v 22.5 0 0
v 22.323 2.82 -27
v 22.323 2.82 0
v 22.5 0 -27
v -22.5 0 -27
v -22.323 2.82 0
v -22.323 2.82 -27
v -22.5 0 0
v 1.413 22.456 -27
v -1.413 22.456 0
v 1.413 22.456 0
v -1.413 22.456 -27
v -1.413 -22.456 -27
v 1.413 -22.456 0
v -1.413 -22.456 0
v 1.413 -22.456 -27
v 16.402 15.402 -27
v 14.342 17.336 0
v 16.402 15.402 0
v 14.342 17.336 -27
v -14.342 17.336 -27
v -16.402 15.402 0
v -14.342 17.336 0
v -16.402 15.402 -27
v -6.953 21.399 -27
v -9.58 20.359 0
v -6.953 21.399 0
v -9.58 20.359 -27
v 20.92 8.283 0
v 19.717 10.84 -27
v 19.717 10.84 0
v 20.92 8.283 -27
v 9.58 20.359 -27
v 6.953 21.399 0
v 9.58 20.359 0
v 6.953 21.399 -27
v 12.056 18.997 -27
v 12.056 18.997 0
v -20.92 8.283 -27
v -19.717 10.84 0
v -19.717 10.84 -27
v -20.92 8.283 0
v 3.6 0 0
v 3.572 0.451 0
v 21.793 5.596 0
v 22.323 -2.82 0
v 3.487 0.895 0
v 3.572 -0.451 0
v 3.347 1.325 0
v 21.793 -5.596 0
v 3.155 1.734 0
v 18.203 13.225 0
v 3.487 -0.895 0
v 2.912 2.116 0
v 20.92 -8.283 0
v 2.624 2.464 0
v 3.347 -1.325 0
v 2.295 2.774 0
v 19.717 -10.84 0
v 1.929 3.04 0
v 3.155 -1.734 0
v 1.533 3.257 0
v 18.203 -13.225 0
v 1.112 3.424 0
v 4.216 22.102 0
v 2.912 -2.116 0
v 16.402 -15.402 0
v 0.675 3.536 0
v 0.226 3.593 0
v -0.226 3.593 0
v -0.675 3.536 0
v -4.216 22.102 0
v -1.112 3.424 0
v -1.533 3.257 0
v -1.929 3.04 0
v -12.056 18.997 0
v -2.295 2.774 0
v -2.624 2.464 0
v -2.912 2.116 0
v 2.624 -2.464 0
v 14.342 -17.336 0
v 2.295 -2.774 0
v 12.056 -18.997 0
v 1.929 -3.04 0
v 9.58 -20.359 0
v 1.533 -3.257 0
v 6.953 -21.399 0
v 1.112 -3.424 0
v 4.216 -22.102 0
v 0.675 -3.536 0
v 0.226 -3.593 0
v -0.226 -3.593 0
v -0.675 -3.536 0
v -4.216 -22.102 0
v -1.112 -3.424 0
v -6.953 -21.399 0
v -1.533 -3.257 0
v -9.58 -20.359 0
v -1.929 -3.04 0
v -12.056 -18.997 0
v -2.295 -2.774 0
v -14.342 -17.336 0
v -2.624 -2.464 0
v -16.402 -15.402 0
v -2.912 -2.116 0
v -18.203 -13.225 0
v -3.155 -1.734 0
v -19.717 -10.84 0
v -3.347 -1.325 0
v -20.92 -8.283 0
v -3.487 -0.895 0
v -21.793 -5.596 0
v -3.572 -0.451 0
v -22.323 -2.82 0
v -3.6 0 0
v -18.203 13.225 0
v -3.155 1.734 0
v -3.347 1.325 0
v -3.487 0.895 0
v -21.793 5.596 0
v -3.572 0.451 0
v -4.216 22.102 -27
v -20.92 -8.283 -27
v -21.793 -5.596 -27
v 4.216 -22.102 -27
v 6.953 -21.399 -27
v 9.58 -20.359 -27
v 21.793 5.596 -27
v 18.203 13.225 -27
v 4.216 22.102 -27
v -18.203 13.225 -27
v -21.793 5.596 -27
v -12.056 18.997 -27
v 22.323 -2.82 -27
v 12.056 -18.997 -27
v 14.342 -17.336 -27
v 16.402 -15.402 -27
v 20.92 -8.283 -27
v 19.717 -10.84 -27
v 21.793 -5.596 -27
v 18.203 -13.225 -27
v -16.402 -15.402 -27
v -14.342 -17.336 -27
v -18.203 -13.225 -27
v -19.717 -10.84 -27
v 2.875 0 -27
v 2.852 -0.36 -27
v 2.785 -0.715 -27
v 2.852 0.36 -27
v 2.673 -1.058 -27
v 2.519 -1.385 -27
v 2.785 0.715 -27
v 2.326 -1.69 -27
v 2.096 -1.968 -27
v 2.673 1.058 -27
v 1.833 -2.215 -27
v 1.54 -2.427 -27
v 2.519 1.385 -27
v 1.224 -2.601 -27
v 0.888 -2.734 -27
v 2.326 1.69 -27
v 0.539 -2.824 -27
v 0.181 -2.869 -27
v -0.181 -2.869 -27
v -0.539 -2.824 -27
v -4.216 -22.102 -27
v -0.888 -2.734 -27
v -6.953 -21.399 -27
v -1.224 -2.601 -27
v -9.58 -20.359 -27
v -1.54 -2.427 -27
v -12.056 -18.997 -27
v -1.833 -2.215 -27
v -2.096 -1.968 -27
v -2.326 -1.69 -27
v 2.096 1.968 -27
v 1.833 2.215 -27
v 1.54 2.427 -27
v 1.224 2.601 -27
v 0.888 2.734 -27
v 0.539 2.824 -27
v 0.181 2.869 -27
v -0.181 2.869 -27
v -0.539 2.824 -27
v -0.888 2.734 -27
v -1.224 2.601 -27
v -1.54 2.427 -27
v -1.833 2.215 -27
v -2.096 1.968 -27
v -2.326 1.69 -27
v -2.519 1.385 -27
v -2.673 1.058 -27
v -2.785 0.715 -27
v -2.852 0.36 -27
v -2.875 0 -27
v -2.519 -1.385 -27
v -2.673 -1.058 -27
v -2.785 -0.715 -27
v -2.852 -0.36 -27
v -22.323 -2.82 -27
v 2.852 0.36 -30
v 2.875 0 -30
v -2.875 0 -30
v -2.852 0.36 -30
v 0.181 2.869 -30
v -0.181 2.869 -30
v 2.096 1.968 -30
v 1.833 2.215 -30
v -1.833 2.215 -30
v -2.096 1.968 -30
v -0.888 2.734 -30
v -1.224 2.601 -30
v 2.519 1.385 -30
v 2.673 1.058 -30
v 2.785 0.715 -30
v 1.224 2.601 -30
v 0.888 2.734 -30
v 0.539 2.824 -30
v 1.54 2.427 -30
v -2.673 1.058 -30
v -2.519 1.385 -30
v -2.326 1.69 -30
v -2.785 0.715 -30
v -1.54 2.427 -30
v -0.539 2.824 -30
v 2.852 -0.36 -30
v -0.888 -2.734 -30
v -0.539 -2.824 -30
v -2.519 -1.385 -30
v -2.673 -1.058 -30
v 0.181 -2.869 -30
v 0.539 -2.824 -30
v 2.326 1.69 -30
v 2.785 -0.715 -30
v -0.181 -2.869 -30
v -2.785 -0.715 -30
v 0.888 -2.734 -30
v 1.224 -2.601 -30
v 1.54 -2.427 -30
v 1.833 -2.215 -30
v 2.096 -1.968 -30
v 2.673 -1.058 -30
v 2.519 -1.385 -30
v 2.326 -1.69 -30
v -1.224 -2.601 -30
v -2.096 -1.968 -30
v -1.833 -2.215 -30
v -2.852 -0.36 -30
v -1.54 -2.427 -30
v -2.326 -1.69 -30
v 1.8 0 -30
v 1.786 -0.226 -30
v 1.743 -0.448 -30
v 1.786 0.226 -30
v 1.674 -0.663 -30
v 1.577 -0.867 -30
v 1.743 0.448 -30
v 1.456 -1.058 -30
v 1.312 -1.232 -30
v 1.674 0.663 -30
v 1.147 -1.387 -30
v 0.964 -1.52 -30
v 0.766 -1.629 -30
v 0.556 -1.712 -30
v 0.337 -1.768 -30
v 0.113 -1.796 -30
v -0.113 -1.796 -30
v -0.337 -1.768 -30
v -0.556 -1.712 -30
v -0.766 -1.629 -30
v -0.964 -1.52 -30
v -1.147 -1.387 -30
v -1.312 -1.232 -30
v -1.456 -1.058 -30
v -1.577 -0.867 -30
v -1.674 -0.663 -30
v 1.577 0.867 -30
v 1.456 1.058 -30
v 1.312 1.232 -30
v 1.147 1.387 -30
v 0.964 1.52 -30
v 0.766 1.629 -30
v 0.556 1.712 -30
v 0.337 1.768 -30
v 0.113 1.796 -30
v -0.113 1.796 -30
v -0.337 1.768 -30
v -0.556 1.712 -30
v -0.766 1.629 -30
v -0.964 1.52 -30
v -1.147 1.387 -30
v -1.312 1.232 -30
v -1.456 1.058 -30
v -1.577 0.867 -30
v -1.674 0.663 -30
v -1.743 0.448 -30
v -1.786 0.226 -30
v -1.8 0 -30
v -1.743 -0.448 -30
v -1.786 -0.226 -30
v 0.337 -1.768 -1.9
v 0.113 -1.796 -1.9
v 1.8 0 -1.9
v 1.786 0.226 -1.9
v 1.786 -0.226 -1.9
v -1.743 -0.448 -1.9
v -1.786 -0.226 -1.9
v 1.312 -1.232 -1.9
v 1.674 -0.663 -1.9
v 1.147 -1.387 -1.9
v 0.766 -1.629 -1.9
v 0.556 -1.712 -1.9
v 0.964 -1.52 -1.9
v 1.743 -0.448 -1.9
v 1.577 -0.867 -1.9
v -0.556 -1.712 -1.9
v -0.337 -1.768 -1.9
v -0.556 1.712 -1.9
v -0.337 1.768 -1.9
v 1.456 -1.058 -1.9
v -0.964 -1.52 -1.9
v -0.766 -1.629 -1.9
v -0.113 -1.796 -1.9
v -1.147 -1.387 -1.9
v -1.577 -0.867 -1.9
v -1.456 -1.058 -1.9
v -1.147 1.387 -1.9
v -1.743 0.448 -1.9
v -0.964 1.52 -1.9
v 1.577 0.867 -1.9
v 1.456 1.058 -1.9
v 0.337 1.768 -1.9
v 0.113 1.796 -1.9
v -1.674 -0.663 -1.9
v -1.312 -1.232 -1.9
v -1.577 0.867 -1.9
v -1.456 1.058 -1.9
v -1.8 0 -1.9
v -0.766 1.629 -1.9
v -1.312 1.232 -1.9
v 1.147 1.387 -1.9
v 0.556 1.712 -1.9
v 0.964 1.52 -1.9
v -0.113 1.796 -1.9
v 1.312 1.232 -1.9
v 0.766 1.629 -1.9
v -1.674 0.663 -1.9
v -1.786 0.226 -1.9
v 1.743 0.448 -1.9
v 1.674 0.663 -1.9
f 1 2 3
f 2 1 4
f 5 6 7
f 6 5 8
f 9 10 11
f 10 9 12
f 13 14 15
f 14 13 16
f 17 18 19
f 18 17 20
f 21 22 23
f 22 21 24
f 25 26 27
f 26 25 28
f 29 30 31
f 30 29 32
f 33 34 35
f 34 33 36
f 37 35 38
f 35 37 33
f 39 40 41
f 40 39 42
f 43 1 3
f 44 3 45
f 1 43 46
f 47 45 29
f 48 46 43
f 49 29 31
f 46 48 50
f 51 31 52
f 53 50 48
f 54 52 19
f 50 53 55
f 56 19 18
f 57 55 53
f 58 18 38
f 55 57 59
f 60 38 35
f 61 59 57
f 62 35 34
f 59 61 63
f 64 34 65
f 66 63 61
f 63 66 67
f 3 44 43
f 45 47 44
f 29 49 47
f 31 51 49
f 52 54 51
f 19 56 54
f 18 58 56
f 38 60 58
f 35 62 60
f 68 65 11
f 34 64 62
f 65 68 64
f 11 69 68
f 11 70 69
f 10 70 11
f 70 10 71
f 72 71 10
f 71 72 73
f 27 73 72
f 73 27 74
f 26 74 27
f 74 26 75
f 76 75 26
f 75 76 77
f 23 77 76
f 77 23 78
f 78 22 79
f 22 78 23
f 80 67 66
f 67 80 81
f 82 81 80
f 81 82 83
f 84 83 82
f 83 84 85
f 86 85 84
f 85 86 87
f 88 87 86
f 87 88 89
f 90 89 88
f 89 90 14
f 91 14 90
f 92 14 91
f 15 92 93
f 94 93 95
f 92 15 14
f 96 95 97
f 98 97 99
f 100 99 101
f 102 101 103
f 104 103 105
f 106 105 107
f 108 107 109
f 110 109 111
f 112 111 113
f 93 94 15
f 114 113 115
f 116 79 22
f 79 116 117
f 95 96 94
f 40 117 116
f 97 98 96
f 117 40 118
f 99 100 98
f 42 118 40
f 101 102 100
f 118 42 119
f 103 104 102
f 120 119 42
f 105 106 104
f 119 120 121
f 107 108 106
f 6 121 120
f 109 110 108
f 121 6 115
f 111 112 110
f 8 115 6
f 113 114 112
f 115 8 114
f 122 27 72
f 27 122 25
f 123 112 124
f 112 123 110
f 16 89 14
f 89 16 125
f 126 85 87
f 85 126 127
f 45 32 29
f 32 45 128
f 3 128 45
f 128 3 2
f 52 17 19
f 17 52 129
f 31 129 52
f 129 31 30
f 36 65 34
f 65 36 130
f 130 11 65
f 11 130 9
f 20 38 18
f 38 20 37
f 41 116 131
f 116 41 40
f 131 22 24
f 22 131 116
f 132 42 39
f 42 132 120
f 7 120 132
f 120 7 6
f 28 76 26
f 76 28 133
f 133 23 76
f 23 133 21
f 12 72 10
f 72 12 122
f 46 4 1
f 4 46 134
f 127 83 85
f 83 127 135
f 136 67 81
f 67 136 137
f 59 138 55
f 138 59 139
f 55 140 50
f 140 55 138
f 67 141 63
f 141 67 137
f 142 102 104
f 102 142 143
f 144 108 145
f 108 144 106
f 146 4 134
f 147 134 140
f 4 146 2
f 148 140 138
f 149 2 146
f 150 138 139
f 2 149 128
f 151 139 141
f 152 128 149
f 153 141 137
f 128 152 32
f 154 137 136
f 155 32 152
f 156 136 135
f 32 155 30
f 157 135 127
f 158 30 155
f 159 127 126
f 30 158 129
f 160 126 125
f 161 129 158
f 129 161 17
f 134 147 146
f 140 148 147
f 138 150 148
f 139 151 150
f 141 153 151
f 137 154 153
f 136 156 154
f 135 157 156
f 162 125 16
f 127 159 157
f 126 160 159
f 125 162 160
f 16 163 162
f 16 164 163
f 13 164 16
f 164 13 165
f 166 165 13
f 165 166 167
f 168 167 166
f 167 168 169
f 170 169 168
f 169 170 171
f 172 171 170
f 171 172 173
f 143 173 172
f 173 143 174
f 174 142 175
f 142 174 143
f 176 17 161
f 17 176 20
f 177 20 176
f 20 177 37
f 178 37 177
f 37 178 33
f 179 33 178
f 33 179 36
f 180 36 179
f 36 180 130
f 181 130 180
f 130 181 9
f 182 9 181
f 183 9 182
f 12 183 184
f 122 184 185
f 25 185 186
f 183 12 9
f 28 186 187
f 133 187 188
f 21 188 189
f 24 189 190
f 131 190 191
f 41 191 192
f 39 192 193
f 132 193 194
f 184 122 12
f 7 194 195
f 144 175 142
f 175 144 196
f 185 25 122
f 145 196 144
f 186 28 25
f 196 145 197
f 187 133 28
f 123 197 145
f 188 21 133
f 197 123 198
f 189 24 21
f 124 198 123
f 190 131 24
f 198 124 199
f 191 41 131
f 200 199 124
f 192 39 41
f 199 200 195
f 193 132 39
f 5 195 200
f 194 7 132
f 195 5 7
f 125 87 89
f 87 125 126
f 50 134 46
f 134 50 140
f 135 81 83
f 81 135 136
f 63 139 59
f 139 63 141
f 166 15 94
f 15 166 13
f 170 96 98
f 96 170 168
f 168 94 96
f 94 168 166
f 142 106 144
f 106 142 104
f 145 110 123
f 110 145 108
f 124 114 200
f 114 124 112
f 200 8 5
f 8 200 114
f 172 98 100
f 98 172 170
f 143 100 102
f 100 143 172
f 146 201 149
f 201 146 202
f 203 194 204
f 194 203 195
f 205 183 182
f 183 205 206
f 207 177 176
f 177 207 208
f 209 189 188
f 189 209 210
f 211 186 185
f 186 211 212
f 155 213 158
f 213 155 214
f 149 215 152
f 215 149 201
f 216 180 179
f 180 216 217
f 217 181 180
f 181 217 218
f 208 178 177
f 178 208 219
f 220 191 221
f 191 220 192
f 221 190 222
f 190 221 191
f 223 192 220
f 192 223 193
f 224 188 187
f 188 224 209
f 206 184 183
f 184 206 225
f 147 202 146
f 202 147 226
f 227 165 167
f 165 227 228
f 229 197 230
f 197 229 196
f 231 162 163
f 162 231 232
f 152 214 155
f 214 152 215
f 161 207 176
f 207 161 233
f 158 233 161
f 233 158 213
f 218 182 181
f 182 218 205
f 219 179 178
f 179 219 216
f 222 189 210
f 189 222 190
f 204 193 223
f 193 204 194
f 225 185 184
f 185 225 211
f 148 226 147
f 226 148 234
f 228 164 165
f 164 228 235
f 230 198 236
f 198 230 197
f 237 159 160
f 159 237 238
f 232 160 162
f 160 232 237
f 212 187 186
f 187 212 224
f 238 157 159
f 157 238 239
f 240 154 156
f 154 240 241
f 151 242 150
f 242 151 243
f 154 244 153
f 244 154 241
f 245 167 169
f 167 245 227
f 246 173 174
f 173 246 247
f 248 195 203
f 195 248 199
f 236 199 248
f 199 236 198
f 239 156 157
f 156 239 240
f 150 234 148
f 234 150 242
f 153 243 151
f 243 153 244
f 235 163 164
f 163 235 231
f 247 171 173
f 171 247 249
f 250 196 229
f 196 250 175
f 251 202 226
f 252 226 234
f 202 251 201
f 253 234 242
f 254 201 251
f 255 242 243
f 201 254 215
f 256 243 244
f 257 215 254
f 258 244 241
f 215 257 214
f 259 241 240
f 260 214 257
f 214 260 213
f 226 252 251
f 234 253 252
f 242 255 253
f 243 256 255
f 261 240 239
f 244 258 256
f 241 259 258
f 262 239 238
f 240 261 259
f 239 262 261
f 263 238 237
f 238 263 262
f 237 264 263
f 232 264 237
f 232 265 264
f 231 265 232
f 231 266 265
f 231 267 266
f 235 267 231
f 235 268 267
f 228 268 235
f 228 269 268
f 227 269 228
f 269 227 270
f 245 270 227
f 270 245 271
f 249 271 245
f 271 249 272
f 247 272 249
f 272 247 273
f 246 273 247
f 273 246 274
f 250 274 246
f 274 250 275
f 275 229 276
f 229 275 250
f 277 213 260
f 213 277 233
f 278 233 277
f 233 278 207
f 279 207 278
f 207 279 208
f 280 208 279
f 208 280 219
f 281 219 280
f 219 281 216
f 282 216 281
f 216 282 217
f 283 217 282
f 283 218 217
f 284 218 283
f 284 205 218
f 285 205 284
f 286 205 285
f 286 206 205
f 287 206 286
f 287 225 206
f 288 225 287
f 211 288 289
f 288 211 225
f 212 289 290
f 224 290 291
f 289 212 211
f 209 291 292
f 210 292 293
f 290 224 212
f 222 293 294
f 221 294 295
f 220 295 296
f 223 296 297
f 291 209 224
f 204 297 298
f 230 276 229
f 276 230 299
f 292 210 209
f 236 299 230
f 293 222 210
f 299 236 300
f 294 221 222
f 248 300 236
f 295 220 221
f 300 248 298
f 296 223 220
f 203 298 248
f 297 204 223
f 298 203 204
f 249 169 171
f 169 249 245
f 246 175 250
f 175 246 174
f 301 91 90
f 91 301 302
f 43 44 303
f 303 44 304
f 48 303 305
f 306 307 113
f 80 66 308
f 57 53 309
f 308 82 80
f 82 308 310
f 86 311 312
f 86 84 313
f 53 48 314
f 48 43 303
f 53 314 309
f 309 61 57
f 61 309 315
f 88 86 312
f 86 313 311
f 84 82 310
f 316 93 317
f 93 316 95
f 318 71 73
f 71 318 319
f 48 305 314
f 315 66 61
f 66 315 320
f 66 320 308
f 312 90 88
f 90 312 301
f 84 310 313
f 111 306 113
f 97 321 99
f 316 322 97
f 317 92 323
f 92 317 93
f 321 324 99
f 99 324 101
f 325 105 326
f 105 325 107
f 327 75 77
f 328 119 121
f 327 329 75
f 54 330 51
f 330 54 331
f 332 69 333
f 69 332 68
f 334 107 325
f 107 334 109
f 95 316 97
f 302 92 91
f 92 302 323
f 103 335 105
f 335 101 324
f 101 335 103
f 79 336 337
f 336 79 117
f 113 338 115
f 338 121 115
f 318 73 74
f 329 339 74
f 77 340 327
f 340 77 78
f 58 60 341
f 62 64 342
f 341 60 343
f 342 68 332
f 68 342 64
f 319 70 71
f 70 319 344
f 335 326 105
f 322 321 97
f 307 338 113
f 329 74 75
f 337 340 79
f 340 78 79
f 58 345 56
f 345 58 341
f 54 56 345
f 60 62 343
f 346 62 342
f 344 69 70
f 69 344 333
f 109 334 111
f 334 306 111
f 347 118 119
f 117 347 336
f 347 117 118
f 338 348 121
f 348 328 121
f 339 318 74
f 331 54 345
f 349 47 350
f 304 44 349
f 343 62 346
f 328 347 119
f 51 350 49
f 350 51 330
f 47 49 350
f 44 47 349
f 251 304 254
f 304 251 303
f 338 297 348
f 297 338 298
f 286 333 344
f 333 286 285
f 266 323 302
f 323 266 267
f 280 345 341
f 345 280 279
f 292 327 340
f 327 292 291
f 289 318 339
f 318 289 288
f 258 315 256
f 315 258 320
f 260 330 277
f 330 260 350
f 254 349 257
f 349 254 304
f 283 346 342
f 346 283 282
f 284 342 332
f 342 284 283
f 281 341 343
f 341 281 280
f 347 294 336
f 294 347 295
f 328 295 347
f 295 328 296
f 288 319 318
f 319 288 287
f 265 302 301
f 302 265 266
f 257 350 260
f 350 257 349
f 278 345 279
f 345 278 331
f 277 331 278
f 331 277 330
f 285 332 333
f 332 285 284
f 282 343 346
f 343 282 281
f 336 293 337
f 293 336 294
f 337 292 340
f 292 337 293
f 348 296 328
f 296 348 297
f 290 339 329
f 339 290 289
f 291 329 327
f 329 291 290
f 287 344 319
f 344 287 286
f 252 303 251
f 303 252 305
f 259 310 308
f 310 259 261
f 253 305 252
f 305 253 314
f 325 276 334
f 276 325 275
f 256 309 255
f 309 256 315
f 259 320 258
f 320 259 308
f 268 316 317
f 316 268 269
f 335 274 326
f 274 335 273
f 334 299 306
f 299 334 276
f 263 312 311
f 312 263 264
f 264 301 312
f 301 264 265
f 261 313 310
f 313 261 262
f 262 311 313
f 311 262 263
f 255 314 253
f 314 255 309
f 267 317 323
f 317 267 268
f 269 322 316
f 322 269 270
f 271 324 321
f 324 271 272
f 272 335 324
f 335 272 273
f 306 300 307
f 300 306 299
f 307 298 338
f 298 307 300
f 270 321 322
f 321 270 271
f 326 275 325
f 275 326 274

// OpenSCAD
$fn = 50;

difference() {
	union() {
		translate(v = [0, 0, -27.0]) {
			cylinder(h = 27, r = 22.5);
		}
		#translate(v = [0, 0, -30.0]) {
			cylinder(h = 30, r = 2.875);
		}
	}
	union() {
		translate(v = [0, 0, 0]) {
			rotate(a = [0, 0, 0]) {
				difference() {
					union() {
						translate(v = [0, 0, -30.0]) {
							cylinder(h = 30, r = 1.5);
						}
						translate(v = [0, 0, -1.9]) {
							cylinder(h = 1.9, r1 = 1.8, r2 = 3.6);
						}
						translate(v = [0, 0, -30.0]) {
							cylinder(h = 30, r = 1.8);
						}
						translate(v = [0, 0, -30.0]) {
							cylinder(h = 30, r = 1.5);
						}
					}
					union();
				}
			}
		}
	}
}
